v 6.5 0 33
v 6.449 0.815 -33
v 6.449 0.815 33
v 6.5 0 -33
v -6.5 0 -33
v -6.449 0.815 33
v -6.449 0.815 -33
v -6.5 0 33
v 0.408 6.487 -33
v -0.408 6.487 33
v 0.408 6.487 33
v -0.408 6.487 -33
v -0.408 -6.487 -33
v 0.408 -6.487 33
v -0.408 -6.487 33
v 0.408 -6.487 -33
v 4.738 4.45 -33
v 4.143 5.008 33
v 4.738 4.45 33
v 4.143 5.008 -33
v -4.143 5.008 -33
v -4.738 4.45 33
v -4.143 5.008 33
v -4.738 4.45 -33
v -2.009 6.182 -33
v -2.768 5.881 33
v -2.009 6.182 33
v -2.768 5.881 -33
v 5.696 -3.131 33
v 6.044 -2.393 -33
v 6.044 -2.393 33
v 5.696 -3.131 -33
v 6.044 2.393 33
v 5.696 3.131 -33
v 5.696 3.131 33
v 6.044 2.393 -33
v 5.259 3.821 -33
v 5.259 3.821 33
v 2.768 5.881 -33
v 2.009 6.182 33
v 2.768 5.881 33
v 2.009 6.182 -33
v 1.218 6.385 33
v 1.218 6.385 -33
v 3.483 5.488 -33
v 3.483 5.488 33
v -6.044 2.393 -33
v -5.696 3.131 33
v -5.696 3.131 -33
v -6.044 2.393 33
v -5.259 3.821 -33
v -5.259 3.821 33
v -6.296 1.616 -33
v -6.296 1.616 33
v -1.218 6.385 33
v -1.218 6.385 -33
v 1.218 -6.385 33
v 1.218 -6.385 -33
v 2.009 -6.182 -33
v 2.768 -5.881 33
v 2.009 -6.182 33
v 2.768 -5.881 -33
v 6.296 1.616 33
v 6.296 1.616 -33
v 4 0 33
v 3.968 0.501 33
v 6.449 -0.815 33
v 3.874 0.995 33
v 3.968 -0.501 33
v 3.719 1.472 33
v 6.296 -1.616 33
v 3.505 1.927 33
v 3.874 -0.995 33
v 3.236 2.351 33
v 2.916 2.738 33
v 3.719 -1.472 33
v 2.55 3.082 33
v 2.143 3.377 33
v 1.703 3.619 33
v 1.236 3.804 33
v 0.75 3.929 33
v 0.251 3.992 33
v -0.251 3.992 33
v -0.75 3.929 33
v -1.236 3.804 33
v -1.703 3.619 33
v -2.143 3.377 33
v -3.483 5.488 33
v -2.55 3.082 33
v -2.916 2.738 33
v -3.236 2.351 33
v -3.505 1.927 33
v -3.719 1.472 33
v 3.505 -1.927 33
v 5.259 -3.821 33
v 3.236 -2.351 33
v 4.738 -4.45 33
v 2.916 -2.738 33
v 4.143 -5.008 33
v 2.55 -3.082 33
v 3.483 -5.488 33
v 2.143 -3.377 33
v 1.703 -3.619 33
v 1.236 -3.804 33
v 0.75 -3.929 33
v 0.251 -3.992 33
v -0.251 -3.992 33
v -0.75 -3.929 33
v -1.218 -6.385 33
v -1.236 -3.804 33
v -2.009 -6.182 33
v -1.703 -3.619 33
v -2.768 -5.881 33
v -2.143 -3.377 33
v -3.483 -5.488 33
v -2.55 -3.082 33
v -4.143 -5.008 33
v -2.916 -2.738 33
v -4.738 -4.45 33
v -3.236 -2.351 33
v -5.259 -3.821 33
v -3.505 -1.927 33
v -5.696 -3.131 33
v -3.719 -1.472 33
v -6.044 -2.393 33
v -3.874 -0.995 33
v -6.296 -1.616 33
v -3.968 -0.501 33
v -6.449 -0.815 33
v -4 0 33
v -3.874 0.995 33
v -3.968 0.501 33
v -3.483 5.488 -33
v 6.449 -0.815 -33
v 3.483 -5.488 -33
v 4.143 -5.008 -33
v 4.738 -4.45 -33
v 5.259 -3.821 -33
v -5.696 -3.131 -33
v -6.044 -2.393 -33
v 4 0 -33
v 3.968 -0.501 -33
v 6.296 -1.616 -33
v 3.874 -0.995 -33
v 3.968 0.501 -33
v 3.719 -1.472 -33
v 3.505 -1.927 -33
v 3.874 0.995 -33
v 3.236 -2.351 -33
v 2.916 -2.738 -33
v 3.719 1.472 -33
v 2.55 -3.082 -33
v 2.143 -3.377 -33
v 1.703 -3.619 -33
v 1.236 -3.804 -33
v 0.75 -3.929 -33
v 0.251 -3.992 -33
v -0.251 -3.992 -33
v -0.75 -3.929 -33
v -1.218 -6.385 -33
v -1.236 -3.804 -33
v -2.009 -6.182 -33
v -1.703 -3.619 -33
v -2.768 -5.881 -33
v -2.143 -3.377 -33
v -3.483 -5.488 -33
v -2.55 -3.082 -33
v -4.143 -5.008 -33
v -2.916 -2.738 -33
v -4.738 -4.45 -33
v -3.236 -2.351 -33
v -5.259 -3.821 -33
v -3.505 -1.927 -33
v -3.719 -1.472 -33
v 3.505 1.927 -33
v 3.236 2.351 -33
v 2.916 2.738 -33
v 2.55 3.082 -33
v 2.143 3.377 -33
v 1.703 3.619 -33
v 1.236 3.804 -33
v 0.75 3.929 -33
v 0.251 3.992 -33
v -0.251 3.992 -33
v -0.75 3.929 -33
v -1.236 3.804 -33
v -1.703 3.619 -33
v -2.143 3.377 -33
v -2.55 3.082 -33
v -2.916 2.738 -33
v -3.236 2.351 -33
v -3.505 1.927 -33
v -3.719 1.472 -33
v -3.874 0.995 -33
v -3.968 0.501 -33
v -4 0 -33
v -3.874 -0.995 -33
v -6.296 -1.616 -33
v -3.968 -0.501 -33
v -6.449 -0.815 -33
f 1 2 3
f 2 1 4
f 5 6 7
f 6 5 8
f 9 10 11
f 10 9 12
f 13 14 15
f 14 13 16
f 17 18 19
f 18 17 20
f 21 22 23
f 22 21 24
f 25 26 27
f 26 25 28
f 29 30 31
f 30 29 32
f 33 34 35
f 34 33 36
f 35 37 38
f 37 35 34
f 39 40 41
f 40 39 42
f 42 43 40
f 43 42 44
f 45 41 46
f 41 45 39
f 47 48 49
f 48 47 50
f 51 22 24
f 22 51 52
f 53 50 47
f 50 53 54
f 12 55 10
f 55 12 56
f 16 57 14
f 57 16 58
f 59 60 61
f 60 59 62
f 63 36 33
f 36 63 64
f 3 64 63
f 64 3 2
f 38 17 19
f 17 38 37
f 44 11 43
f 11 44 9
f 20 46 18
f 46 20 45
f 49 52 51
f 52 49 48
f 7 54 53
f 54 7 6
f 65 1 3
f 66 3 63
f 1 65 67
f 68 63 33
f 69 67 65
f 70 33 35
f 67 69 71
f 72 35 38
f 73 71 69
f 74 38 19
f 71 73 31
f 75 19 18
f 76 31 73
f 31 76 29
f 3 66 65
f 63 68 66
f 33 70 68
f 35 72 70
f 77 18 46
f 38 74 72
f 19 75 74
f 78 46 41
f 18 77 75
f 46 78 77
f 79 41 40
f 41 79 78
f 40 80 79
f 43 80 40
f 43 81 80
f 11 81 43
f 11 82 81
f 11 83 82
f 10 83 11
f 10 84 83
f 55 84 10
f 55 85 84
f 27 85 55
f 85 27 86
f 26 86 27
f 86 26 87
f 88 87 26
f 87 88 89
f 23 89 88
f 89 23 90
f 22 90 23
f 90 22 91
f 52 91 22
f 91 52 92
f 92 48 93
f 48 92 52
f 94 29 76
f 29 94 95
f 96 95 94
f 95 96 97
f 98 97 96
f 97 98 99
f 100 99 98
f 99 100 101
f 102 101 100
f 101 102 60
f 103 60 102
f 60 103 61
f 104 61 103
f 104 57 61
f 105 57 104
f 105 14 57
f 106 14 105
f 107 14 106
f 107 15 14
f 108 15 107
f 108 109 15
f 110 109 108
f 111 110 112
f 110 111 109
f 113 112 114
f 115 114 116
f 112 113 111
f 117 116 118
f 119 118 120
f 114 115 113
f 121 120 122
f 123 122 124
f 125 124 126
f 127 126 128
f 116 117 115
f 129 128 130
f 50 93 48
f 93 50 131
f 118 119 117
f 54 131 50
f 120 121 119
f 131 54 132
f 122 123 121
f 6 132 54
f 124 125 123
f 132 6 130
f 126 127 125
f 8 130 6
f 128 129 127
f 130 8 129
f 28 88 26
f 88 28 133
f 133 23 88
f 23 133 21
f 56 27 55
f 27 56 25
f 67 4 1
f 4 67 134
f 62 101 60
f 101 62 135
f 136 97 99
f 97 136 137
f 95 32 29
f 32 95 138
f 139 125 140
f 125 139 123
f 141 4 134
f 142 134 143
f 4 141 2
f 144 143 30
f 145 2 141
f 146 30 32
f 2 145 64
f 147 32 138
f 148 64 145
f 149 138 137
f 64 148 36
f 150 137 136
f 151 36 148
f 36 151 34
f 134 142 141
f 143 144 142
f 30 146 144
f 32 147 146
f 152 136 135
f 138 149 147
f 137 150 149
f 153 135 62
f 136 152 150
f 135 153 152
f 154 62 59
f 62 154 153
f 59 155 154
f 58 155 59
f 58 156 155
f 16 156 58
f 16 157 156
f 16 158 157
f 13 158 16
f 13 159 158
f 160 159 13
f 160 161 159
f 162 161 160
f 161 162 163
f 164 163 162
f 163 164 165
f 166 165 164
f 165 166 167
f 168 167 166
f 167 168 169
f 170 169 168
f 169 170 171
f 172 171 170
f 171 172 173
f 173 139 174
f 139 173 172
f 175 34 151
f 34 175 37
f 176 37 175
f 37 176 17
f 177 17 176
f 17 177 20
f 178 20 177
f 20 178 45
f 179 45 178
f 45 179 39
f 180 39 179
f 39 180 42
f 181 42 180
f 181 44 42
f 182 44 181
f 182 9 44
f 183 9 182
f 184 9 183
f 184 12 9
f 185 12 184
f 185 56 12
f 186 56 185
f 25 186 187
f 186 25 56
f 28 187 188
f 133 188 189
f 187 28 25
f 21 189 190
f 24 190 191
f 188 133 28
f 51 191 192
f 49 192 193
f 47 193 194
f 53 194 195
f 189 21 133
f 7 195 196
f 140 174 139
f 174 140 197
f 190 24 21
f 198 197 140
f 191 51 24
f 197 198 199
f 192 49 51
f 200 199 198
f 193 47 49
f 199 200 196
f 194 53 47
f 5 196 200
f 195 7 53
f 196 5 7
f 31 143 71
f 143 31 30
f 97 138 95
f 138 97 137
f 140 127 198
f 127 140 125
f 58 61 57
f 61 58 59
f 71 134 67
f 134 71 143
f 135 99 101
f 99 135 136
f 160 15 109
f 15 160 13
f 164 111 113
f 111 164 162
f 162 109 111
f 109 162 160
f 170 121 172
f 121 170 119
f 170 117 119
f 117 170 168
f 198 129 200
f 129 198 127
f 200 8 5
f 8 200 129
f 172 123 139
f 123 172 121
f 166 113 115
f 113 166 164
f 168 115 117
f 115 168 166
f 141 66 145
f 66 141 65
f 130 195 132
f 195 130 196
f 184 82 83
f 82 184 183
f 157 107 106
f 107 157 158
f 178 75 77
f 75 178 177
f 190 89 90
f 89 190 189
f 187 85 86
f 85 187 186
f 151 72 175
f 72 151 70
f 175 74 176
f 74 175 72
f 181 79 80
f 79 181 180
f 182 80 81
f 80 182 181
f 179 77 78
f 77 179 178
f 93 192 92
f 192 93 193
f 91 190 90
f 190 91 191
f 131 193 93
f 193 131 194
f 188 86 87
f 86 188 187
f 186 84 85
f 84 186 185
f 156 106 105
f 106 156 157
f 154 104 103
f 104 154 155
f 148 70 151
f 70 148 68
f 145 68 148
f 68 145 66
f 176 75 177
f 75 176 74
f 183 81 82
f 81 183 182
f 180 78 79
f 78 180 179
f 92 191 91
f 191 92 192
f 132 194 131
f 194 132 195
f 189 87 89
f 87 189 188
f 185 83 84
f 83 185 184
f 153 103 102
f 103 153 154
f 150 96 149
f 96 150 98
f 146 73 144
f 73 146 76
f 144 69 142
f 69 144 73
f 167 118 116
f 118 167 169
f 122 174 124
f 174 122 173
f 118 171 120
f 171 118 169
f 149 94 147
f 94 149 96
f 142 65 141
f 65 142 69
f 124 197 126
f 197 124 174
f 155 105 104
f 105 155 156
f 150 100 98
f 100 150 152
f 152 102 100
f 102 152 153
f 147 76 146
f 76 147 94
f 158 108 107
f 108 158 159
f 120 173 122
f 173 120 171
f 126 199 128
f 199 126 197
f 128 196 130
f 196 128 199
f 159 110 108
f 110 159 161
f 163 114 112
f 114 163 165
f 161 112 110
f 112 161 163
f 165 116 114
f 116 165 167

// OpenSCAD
$fn = 50;


difference() {
	union() {
		translate(v = [0, 0, -33.0000000000]) {
			cylinder(h = 66, r = 6.5000000000);
		}
	}
	union() {
		translate(v = [0, 0, -100.0000000000]) {
			cylinder(h = 200, r = 4);
		}
	}
}
